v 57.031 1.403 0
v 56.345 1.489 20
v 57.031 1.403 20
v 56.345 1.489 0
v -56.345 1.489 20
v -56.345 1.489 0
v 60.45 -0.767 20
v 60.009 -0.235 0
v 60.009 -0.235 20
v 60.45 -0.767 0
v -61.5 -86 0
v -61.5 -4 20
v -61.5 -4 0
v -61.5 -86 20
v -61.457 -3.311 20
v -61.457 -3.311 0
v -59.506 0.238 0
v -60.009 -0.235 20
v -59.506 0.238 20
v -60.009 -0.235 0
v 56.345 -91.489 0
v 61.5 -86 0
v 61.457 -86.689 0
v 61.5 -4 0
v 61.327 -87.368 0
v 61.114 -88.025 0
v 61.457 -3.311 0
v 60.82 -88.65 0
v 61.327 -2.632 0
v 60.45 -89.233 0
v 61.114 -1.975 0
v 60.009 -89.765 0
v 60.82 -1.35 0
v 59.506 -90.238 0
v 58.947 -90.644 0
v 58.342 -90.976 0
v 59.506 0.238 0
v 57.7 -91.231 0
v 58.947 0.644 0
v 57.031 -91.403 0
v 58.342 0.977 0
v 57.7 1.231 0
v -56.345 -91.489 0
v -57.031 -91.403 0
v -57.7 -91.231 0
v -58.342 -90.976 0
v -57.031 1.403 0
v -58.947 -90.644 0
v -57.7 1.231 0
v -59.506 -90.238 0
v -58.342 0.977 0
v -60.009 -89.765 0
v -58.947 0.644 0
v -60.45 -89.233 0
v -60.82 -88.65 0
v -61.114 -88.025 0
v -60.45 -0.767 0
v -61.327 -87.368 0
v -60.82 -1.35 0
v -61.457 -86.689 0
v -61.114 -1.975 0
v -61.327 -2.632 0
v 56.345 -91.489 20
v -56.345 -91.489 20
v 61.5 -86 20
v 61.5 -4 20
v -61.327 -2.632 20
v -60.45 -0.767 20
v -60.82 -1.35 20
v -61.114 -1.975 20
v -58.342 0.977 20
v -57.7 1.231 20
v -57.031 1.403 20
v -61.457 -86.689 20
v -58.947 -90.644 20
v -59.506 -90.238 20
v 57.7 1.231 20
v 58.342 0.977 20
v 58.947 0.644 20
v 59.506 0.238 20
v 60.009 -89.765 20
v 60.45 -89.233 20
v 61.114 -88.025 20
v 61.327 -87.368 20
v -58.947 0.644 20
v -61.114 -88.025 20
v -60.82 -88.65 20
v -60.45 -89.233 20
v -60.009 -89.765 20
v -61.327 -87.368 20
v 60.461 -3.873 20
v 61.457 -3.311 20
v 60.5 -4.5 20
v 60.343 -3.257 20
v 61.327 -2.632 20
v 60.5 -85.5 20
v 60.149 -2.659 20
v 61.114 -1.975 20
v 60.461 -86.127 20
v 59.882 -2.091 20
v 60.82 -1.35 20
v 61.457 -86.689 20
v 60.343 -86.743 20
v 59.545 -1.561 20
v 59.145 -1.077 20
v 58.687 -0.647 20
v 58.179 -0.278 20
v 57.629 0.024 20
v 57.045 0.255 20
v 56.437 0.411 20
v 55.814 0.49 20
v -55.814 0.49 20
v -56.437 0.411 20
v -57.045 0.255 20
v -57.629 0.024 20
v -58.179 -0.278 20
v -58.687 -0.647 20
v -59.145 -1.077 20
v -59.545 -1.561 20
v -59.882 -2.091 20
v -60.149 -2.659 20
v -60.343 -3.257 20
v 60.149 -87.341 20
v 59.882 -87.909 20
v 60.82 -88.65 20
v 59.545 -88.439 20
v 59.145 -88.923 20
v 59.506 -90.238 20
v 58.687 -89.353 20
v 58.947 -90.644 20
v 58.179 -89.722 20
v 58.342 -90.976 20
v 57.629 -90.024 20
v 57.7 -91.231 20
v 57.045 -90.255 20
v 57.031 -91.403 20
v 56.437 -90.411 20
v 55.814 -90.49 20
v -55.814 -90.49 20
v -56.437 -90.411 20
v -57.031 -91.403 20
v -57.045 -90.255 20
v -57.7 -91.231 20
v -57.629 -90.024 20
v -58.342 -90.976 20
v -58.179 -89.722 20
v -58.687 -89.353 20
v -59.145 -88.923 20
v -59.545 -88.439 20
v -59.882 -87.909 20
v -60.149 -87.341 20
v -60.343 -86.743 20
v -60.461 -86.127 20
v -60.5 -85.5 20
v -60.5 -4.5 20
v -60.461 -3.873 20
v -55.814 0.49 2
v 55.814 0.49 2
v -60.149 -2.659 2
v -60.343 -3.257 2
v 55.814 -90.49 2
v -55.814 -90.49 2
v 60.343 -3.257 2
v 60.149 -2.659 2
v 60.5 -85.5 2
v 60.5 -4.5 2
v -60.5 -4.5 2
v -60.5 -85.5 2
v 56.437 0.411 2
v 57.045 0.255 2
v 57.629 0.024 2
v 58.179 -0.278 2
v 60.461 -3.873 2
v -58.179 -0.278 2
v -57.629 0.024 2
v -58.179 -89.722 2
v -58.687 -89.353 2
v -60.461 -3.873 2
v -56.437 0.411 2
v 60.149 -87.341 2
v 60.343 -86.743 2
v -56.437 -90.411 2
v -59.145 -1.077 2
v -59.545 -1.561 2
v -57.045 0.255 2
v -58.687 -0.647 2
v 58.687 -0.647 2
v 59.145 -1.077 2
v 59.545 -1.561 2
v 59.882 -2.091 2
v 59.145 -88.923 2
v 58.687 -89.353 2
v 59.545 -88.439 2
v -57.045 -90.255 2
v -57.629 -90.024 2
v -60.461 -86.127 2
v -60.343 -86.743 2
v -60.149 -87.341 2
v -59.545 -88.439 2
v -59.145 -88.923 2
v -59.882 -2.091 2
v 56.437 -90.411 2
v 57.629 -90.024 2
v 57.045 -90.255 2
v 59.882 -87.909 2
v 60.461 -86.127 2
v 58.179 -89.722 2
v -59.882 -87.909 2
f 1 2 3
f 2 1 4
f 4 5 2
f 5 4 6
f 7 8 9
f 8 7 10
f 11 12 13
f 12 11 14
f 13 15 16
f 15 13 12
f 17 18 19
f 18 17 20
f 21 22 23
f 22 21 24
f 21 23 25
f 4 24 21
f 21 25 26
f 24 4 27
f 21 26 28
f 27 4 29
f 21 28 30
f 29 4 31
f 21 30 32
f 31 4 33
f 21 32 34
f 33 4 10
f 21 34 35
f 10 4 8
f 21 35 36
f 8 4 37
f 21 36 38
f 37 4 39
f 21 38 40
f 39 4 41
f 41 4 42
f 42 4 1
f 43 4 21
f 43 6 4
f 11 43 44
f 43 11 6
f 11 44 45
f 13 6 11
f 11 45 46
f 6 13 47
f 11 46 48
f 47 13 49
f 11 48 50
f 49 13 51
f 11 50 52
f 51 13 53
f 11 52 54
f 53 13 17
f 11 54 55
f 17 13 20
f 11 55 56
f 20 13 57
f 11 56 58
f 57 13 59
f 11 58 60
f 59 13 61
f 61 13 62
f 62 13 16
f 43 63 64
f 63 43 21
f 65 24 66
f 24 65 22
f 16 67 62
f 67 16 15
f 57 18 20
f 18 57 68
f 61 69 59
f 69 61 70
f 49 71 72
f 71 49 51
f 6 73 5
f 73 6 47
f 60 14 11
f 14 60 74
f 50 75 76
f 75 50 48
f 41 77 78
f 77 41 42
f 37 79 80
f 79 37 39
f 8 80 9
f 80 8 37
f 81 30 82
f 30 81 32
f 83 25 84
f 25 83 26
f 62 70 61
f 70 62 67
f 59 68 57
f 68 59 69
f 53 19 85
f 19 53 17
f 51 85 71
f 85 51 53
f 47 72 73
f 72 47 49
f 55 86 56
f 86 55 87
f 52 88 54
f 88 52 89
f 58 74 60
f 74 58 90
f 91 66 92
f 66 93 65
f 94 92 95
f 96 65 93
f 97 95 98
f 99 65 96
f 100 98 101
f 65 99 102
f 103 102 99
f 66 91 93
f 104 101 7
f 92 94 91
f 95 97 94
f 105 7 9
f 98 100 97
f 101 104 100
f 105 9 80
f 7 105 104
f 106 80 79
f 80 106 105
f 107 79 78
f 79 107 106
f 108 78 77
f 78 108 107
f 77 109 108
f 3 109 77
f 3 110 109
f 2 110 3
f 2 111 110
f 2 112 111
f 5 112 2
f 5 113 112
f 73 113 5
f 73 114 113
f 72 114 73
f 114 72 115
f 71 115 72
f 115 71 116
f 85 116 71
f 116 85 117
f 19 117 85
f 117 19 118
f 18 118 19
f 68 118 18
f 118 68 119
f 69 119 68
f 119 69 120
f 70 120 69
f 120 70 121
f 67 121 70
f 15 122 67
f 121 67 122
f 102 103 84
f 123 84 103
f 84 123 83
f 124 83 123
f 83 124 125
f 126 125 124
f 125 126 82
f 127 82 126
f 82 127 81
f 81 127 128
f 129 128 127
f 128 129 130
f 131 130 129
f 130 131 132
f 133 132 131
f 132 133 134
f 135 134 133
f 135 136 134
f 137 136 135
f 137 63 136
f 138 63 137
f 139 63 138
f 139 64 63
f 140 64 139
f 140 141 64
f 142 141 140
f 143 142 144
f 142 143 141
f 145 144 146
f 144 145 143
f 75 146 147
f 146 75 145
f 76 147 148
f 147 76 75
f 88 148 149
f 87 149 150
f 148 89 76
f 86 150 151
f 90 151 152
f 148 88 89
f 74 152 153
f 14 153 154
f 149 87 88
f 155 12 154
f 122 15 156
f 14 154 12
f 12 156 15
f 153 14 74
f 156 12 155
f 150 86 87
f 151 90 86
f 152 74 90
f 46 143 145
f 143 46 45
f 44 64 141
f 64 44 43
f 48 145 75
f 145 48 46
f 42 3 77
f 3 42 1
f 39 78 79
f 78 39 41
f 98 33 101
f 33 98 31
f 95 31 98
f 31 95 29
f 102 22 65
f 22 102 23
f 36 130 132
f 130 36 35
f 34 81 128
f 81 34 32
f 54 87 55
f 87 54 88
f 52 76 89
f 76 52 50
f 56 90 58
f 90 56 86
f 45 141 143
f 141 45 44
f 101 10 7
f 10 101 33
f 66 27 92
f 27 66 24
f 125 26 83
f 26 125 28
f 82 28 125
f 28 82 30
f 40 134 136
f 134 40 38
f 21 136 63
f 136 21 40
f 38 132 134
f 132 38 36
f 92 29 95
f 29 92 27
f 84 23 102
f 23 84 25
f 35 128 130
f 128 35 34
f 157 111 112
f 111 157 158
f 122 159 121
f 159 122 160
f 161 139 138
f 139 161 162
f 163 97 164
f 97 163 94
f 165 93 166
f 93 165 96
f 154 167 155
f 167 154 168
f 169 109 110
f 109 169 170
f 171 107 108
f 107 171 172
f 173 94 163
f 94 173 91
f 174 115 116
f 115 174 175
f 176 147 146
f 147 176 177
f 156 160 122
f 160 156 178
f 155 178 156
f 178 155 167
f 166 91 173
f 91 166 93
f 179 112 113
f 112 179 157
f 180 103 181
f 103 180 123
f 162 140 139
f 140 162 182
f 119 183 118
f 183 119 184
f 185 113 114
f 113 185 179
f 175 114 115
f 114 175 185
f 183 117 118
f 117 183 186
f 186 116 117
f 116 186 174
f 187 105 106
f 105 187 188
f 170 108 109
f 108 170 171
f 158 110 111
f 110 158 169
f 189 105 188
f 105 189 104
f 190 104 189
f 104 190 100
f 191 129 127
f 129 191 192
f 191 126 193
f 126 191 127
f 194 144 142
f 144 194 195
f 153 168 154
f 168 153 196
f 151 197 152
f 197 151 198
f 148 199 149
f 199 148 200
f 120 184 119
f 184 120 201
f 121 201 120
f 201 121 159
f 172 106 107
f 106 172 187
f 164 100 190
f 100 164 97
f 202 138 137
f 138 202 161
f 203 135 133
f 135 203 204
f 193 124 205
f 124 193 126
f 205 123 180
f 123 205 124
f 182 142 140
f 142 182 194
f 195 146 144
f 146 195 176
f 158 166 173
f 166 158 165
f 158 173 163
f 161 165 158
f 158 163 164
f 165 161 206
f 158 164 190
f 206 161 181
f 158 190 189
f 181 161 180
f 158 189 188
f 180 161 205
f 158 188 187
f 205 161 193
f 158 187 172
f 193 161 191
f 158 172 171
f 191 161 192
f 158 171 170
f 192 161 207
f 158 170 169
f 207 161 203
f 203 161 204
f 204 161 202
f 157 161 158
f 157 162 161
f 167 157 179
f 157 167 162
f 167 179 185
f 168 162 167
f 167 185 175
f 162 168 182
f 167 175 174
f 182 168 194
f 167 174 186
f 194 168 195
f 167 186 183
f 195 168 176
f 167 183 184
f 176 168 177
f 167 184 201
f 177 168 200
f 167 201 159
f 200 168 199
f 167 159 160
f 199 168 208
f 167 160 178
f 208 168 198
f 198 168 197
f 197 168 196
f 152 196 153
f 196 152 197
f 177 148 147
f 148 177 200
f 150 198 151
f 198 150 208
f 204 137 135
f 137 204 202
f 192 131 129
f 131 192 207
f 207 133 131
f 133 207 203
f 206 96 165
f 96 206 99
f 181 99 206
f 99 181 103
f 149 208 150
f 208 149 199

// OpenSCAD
$fn = 50;


difference() {
	union() {
		translate(v = [0, -45.0000000000, 0]) {
			hull() {
				translate(v = [-56.0000000000, 41.0000000000, 0]) {
					cylinder(h = 20, r = 5.5000000000);
				}
				translate(v = [56.0000000000, 41.0000000000, 0]) {
					cylinder(h = 20, r = 5.5000000000);
				}
				translate(v = [-56.0000000000, -41.0000000000, 0]) {
					cylinder(h = 20, r = 5.5000000000);
				}
				translate(v = [56.0000000000, -41.0000000000, 0]) {
					cylinder(h = 20, r = 5.5000000000);
				}
			}
		}
	}
	union() {
		translate(v = [0, -45.0000000000, 2]) {
			hull() {
				translate(v = [-55.5000000000, 40.5000000000, 0]) {
					cylinder(h = 40, r = 5);
				}
				translate(v = [55.5000000000, 40.5000000000, 0]) {
					cylinder(h = 40, r = 5);
				}
				translate(v = [-55.5000000000, -40.5000000000, 0]) {
					cylinder(h = 40, r = 5);
				}
				translate(v = [55.5000000000, -40.5000000000, 0]) {
					cylinder(h = 40, r = 5);
				}
			}
		}
	}
}
